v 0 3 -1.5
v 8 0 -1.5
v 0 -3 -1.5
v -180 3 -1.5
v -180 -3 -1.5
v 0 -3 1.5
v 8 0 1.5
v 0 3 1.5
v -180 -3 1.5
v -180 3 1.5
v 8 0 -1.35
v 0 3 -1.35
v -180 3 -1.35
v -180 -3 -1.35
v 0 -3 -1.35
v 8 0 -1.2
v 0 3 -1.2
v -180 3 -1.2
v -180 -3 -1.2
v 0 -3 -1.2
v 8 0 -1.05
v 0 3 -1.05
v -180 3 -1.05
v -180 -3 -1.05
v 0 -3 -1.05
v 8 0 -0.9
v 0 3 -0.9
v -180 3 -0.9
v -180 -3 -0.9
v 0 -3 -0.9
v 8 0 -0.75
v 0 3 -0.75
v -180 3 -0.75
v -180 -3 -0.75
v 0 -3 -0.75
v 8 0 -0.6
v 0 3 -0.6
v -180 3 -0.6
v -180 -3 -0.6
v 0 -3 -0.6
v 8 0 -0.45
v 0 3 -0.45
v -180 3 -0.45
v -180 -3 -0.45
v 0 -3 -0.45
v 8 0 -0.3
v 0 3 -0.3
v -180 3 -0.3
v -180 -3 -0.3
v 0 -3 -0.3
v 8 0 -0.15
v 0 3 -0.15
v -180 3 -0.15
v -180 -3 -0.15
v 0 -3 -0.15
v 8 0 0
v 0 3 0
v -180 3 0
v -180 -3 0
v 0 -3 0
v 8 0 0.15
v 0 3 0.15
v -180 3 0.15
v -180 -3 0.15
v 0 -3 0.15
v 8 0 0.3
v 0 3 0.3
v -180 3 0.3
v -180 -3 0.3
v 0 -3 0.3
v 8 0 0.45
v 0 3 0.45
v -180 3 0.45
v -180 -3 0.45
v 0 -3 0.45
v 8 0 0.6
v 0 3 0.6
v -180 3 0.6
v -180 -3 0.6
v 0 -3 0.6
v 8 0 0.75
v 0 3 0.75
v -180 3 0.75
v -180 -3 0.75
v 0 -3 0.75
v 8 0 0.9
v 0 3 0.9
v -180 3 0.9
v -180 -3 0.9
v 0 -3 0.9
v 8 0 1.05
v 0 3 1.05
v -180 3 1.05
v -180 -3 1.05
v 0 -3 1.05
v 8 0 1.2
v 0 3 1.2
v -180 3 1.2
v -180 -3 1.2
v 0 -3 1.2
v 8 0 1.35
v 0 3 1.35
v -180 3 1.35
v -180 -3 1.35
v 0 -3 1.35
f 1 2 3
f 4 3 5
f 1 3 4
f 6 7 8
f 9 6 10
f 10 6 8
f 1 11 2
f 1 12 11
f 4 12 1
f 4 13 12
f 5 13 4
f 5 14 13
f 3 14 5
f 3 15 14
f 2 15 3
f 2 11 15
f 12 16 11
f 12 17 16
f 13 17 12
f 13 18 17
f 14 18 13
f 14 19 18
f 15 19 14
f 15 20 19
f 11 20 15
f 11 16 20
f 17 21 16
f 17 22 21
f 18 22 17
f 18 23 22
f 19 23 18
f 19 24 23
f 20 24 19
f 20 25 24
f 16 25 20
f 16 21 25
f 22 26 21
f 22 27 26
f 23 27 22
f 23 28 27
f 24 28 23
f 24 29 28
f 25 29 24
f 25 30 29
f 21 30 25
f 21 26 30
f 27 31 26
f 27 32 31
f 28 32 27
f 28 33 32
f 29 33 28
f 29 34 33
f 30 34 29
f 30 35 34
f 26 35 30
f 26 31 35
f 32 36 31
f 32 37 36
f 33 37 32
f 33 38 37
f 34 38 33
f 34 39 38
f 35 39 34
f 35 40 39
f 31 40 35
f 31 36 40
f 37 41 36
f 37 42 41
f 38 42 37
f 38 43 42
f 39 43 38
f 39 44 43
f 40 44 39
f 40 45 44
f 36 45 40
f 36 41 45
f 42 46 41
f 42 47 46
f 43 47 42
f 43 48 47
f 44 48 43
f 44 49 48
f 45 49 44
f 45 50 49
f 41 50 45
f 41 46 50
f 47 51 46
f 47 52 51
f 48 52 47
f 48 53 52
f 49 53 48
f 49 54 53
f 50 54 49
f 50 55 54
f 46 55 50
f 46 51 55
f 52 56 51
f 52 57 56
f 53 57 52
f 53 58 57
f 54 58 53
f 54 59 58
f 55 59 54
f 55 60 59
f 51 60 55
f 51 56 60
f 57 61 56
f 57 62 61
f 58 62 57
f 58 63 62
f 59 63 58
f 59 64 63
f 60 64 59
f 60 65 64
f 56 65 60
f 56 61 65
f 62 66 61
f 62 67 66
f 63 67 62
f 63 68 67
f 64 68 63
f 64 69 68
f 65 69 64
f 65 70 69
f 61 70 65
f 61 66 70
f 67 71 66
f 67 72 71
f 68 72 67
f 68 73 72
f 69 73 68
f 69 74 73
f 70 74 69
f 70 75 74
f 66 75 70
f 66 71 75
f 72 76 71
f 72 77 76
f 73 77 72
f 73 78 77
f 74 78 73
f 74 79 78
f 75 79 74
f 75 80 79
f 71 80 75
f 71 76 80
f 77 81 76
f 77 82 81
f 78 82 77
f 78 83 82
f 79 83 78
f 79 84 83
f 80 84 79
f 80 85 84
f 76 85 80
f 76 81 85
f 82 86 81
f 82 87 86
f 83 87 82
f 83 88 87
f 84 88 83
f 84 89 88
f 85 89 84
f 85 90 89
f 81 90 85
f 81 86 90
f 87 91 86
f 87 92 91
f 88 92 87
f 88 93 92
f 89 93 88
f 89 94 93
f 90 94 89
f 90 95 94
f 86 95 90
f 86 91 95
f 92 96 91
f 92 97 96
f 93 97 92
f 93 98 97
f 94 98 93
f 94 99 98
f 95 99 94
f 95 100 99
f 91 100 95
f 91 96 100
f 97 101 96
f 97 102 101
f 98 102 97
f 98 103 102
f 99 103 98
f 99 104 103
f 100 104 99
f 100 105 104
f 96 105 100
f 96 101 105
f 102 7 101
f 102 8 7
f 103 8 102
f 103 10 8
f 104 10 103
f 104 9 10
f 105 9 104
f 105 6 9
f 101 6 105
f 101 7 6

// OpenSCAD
w=6;
th=3;
l=180;
sl=8;

linear_extrude(height = th, center = true, convexity = 10,  slices = 20, scale = 1.0, $fn = 16) {

polygon(points=[
[sl,0],
[0,(-w/2)], 
[-l,(-w/2)], 
[-l,(w/2)], 
[0,(w/2)]]);
}
